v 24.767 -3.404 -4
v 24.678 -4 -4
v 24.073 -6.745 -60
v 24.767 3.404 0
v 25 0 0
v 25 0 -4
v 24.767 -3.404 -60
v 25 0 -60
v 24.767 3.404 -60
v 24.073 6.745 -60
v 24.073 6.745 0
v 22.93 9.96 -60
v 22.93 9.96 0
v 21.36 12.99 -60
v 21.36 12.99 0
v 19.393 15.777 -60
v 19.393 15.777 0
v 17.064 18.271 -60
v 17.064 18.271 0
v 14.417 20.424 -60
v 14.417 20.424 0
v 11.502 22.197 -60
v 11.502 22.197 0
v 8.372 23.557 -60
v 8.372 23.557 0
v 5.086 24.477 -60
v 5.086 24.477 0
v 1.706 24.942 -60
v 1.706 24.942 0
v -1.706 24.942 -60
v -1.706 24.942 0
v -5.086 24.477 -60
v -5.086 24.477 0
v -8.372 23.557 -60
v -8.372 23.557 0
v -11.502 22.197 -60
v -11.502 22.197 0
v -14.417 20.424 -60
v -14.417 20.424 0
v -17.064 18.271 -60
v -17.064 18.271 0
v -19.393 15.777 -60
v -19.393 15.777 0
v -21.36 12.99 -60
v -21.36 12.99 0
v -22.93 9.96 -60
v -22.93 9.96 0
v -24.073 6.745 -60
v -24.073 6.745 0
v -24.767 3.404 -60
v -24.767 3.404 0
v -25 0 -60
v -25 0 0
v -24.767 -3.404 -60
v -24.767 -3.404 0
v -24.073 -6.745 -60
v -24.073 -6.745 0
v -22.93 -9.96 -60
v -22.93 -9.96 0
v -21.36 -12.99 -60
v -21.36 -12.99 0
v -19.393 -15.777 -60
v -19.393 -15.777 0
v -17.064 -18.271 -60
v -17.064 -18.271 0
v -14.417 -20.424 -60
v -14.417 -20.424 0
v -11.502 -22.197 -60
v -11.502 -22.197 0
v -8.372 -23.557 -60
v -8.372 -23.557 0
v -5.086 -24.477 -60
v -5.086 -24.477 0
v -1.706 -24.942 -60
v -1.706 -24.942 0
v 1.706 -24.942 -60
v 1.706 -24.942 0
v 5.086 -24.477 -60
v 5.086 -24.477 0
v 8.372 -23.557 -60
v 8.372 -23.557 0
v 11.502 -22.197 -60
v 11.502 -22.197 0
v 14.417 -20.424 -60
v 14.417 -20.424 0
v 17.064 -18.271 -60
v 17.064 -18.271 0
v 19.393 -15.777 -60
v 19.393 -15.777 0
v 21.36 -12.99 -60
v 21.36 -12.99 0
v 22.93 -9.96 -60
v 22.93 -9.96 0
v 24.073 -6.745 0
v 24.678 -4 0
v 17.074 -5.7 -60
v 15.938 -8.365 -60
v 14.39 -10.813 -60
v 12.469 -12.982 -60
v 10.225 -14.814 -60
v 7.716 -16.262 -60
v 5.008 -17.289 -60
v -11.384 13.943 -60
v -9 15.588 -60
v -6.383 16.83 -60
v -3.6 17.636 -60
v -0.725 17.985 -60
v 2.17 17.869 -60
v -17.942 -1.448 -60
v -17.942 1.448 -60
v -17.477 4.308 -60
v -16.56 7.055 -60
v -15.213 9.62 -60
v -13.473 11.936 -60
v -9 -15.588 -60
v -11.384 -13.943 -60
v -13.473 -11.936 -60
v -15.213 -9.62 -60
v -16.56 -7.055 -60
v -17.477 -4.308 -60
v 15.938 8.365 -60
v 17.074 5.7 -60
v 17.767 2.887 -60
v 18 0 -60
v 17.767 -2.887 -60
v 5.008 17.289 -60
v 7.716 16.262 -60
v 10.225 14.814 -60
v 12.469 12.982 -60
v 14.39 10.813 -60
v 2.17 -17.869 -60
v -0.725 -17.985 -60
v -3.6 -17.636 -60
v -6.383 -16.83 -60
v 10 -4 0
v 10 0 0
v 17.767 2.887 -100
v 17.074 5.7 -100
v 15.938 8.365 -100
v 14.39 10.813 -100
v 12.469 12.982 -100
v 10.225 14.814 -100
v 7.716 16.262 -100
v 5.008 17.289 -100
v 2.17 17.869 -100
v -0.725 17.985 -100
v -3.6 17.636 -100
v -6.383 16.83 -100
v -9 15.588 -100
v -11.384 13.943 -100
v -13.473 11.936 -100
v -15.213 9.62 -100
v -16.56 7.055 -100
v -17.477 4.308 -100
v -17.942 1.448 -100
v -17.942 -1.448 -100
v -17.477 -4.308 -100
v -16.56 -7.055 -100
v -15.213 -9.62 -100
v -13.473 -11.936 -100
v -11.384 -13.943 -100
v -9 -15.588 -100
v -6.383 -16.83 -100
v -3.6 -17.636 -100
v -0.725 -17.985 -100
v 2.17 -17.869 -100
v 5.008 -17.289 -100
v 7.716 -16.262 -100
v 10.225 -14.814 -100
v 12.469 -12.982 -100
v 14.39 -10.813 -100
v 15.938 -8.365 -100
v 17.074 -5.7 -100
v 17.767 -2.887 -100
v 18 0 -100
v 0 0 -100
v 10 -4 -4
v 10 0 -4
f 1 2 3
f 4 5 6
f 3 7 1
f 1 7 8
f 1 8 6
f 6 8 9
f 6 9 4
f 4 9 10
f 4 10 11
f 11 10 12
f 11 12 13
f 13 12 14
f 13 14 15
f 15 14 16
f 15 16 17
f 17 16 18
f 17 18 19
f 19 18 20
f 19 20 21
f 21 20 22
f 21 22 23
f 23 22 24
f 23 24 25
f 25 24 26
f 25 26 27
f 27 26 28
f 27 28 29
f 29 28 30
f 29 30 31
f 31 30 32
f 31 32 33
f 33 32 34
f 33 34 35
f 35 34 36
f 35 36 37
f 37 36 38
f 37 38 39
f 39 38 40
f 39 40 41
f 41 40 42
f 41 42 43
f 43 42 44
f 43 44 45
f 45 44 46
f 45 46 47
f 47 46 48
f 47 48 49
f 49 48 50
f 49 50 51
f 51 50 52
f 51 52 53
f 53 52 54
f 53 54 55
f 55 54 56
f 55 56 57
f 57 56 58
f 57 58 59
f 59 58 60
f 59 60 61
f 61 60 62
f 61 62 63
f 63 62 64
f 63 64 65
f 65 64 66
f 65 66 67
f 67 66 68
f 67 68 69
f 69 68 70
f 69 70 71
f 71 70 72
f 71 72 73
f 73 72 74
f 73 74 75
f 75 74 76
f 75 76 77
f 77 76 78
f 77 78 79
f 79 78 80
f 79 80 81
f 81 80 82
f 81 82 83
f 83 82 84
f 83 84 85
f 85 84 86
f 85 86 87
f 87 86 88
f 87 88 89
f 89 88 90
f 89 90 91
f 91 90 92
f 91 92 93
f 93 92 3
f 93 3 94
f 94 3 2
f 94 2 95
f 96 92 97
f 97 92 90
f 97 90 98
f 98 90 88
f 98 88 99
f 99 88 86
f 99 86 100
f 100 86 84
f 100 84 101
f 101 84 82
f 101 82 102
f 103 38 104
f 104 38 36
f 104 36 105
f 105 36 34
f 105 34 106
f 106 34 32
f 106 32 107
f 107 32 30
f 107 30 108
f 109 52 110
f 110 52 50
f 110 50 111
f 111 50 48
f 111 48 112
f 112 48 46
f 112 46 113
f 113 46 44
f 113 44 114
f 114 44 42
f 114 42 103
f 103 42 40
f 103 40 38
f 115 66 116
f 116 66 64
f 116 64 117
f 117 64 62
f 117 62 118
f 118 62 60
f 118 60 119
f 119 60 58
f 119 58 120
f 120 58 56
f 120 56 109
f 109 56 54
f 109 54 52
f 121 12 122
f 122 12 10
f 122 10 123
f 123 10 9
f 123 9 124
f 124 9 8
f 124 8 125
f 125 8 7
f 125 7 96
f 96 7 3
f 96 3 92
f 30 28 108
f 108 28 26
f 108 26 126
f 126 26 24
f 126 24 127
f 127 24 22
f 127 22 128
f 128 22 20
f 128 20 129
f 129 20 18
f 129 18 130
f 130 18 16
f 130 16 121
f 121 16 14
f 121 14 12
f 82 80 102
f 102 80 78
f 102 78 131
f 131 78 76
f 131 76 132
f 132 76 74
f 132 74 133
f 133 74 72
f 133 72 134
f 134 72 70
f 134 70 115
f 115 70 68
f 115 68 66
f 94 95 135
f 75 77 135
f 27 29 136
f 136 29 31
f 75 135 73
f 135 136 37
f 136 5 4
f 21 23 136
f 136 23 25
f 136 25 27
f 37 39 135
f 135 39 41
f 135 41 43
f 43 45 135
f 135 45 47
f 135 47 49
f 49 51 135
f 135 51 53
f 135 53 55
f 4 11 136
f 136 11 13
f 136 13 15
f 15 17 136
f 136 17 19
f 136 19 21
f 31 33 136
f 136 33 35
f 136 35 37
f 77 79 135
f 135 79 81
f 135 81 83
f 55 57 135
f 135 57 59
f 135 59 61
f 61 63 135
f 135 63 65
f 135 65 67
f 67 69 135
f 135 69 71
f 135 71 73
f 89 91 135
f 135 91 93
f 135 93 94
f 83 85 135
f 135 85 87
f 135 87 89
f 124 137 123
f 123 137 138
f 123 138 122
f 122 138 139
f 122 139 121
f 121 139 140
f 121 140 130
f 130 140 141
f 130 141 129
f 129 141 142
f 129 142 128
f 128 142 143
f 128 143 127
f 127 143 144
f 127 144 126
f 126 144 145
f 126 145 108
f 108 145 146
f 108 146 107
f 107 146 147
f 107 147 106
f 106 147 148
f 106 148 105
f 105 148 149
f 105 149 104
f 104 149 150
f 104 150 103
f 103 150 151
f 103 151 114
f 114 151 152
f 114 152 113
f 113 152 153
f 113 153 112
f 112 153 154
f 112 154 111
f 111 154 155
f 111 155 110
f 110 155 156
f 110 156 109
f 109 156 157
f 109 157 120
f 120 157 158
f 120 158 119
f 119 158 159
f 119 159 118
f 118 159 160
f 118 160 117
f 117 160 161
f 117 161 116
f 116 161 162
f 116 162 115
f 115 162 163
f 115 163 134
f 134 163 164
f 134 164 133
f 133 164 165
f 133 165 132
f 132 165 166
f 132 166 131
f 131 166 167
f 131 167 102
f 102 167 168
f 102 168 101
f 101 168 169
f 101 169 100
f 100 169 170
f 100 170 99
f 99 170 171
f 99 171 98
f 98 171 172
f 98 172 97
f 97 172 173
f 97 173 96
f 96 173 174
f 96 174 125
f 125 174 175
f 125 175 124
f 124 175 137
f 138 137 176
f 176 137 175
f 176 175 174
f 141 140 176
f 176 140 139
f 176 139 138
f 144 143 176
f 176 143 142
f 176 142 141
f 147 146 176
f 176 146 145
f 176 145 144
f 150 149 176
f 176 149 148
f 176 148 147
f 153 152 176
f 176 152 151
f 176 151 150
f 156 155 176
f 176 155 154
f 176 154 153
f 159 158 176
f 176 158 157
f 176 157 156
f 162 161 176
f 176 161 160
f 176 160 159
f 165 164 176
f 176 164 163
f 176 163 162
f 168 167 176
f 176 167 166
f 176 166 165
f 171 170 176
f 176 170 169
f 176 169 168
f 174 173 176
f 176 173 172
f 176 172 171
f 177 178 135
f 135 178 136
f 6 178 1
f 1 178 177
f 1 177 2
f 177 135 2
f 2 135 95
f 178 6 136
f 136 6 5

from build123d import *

# Parameters (mm, degrees)
SKETCH_1_R          = 25
EXTRUDE_1_DEPTH     = 60
SKETCH_2_R          = 18
EXTRUDE_2_DEPTH     = 100
SKETCH_3_W          = 25
SKETCH_3_H          = 8
CUT_EXTRUDE_1_DEPTH = 4


with BuildPart() as part:
    # 草图1 → 凸台-拉伸1 (new body)
    with BuildSketch(Plane.XY):
        Circle(SKETCH_1_R)
    extrude(amount=-EXTRUDE_1_DEPTH)

    # 草图2 → 凸台-拉伸2 (add)
    with BuildSketch(Plane.XY):
        Circle(SKETCH_2_R)
    extrude(amount=-EXTRUDE_2_DEPTH)

    # 草图3 → 切除-拉伸1 (cut)
    with BuildSketch(Plane(origin=(0, 0, 0), x_dir=(1, 0, 0), z_dir=(0, 1, 0))):
        with Locations((22.5, 0)):
            Rectangle(SKETCH_3_W, SKETCH_3_H)
    extrude(amount=-CUT_EXTRUDE_1_DEPTH, mode=Mode.SUBTRACT)


solid = part.part
